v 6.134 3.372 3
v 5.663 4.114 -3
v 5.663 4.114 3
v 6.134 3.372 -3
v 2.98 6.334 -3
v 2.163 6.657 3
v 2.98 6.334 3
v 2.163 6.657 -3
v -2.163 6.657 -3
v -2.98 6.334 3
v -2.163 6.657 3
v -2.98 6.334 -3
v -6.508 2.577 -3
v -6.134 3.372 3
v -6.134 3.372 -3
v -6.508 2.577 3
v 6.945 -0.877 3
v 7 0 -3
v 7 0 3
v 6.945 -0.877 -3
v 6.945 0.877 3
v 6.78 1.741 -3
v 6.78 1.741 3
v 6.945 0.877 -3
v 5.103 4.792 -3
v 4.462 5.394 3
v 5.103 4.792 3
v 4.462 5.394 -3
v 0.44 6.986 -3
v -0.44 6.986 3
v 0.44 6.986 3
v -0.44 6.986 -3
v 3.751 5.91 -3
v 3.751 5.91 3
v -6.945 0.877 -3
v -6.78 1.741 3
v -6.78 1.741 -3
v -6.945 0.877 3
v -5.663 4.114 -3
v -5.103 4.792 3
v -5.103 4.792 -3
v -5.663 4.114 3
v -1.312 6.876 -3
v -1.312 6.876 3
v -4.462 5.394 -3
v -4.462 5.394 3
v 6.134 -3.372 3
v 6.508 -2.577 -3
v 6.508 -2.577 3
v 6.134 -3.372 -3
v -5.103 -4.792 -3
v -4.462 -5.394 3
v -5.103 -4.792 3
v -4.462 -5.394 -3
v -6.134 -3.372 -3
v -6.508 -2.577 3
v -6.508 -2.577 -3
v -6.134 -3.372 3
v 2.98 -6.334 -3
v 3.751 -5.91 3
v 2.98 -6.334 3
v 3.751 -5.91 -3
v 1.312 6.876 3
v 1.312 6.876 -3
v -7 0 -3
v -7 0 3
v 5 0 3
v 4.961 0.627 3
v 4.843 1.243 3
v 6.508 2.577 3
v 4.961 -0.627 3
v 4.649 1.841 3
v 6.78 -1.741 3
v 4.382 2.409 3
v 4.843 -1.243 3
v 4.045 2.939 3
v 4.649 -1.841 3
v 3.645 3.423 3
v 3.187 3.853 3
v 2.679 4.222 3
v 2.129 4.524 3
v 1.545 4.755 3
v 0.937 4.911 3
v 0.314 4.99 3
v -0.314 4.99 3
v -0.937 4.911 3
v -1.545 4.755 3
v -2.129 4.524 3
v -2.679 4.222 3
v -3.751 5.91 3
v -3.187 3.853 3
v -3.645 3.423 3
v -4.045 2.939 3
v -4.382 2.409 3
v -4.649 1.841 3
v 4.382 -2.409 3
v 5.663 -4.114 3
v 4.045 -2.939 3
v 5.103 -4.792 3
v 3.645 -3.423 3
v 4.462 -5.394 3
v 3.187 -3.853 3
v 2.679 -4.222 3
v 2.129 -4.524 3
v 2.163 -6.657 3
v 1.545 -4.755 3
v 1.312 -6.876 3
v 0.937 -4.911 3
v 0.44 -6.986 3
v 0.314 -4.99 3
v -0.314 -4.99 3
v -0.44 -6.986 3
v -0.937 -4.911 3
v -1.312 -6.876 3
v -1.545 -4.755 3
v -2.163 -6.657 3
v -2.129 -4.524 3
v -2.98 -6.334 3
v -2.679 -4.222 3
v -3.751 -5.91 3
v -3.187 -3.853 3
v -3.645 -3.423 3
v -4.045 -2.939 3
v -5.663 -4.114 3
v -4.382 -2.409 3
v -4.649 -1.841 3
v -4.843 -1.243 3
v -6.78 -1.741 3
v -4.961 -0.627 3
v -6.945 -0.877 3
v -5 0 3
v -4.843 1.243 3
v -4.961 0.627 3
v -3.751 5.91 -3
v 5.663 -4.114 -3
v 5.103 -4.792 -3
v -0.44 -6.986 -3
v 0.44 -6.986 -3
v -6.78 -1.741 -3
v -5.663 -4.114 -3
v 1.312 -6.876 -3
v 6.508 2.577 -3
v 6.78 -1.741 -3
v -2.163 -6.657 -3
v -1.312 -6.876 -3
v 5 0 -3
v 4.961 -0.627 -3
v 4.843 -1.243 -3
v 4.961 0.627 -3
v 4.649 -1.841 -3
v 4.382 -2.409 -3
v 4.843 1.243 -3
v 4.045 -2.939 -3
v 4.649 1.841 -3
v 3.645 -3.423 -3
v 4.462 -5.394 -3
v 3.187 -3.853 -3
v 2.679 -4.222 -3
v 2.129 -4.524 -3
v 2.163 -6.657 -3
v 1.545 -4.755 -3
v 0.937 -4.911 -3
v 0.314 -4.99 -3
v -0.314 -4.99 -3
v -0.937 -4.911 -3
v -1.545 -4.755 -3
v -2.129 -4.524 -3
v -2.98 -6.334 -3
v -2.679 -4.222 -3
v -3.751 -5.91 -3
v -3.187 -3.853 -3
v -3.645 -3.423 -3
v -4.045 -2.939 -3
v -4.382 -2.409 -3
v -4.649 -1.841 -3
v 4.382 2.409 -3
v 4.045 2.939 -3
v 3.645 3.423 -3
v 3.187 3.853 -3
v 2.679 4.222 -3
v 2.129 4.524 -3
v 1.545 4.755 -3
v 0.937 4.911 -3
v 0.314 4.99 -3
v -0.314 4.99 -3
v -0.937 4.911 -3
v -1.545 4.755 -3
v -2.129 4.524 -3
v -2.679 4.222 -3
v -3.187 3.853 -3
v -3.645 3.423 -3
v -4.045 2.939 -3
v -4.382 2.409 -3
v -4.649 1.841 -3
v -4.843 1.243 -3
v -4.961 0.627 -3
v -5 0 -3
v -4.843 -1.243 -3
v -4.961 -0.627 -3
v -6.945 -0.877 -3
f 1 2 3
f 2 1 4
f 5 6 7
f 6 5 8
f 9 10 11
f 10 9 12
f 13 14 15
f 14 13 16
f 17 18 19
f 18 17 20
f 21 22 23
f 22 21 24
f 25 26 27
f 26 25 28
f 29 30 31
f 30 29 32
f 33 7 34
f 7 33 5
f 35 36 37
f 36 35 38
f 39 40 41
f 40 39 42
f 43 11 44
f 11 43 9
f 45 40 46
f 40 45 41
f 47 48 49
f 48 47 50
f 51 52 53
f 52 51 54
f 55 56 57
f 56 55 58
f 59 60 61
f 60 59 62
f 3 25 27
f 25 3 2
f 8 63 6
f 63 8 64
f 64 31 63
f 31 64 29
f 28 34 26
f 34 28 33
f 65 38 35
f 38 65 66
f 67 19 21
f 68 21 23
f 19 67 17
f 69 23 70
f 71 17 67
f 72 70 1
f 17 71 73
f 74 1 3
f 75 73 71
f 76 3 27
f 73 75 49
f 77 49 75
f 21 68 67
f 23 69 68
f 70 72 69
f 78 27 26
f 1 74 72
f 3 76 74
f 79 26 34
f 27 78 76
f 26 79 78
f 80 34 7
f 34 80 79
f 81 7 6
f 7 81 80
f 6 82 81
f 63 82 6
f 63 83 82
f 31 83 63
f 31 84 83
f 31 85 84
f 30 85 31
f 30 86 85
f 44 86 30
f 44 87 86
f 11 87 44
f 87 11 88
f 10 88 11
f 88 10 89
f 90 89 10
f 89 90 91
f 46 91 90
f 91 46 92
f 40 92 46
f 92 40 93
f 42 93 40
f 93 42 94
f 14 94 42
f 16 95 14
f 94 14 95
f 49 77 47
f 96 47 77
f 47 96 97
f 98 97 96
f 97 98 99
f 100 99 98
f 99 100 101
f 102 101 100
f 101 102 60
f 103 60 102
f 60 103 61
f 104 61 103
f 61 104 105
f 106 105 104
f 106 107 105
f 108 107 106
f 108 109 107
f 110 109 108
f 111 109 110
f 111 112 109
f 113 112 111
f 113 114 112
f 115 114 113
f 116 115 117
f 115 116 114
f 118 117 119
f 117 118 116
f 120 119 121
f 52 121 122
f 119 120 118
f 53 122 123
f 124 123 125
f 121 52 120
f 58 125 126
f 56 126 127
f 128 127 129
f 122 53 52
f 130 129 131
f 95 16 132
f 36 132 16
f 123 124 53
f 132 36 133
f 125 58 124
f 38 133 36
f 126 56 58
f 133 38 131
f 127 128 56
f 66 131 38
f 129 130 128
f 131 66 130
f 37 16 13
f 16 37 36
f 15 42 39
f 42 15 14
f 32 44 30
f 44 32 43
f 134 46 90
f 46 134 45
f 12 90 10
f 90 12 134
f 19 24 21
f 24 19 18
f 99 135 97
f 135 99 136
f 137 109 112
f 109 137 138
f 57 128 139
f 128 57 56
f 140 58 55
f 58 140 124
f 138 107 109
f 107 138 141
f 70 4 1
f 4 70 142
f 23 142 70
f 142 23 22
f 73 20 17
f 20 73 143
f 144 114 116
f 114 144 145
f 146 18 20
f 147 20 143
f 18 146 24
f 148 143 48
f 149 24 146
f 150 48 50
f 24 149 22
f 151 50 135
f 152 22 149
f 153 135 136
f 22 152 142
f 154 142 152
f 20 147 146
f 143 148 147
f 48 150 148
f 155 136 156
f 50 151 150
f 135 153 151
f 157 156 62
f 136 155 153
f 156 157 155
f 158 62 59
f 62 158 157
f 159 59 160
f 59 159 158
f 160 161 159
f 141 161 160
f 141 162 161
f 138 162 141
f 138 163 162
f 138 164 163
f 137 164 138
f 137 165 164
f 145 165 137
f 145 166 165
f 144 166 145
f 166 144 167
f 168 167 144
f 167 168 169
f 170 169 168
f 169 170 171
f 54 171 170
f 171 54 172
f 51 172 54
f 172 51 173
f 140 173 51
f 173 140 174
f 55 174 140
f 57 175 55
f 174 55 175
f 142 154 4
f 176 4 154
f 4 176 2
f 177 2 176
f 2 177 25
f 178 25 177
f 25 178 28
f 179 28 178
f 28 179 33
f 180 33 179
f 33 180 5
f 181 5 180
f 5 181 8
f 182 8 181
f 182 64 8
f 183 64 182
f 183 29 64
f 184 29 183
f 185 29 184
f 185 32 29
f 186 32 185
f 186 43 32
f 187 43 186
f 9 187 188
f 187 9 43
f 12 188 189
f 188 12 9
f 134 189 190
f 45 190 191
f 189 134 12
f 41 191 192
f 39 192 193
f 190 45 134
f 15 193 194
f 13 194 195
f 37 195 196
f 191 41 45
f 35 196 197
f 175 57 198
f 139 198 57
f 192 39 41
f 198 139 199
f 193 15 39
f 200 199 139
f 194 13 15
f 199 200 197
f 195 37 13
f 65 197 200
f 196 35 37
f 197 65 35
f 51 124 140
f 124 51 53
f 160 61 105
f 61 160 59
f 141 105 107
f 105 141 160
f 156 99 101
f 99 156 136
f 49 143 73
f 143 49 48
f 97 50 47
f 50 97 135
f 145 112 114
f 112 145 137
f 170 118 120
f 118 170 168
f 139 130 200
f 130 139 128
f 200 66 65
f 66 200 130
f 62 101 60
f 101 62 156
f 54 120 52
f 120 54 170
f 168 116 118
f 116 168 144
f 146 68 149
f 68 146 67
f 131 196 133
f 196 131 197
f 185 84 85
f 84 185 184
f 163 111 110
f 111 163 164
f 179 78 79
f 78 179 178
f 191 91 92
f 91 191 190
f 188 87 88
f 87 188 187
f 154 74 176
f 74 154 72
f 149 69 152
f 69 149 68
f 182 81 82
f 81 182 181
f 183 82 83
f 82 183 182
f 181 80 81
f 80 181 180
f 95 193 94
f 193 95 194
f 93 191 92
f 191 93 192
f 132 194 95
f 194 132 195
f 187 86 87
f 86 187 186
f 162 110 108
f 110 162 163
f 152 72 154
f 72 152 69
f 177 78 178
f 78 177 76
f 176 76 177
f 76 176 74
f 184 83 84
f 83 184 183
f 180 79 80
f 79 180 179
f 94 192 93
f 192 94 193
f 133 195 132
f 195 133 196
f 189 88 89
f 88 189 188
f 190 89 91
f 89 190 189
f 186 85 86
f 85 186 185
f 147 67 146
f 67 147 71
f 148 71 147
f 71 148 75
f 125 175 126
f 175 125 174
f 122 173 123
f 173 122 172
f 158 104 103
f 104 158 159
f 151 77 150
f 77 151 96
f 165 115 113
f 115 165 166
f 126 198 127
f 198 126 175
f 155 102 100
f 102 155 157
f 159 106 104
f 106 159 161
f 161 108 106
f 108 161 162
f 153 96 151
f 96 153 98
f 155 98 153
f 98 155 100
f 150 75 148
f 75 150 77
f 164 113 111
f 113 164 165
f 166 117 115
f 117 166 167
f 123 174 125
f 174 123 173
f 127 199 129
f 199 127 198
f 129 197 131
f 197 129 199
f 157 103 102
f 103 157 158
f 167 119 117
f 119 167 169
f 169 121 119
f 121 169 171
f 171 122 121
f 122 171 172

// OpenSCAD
$fn = 50;


difference() {
	union() {
		translate(v = [0, 0, -3.0000000000]) {
			cylinder(h = 6, r = 7.0000000000);
		}
	}
	union() {
		translate(v = [0, 0, -100.0000000000]) {
			cylinder(h = 200, r = 5);
		}
	}
}
